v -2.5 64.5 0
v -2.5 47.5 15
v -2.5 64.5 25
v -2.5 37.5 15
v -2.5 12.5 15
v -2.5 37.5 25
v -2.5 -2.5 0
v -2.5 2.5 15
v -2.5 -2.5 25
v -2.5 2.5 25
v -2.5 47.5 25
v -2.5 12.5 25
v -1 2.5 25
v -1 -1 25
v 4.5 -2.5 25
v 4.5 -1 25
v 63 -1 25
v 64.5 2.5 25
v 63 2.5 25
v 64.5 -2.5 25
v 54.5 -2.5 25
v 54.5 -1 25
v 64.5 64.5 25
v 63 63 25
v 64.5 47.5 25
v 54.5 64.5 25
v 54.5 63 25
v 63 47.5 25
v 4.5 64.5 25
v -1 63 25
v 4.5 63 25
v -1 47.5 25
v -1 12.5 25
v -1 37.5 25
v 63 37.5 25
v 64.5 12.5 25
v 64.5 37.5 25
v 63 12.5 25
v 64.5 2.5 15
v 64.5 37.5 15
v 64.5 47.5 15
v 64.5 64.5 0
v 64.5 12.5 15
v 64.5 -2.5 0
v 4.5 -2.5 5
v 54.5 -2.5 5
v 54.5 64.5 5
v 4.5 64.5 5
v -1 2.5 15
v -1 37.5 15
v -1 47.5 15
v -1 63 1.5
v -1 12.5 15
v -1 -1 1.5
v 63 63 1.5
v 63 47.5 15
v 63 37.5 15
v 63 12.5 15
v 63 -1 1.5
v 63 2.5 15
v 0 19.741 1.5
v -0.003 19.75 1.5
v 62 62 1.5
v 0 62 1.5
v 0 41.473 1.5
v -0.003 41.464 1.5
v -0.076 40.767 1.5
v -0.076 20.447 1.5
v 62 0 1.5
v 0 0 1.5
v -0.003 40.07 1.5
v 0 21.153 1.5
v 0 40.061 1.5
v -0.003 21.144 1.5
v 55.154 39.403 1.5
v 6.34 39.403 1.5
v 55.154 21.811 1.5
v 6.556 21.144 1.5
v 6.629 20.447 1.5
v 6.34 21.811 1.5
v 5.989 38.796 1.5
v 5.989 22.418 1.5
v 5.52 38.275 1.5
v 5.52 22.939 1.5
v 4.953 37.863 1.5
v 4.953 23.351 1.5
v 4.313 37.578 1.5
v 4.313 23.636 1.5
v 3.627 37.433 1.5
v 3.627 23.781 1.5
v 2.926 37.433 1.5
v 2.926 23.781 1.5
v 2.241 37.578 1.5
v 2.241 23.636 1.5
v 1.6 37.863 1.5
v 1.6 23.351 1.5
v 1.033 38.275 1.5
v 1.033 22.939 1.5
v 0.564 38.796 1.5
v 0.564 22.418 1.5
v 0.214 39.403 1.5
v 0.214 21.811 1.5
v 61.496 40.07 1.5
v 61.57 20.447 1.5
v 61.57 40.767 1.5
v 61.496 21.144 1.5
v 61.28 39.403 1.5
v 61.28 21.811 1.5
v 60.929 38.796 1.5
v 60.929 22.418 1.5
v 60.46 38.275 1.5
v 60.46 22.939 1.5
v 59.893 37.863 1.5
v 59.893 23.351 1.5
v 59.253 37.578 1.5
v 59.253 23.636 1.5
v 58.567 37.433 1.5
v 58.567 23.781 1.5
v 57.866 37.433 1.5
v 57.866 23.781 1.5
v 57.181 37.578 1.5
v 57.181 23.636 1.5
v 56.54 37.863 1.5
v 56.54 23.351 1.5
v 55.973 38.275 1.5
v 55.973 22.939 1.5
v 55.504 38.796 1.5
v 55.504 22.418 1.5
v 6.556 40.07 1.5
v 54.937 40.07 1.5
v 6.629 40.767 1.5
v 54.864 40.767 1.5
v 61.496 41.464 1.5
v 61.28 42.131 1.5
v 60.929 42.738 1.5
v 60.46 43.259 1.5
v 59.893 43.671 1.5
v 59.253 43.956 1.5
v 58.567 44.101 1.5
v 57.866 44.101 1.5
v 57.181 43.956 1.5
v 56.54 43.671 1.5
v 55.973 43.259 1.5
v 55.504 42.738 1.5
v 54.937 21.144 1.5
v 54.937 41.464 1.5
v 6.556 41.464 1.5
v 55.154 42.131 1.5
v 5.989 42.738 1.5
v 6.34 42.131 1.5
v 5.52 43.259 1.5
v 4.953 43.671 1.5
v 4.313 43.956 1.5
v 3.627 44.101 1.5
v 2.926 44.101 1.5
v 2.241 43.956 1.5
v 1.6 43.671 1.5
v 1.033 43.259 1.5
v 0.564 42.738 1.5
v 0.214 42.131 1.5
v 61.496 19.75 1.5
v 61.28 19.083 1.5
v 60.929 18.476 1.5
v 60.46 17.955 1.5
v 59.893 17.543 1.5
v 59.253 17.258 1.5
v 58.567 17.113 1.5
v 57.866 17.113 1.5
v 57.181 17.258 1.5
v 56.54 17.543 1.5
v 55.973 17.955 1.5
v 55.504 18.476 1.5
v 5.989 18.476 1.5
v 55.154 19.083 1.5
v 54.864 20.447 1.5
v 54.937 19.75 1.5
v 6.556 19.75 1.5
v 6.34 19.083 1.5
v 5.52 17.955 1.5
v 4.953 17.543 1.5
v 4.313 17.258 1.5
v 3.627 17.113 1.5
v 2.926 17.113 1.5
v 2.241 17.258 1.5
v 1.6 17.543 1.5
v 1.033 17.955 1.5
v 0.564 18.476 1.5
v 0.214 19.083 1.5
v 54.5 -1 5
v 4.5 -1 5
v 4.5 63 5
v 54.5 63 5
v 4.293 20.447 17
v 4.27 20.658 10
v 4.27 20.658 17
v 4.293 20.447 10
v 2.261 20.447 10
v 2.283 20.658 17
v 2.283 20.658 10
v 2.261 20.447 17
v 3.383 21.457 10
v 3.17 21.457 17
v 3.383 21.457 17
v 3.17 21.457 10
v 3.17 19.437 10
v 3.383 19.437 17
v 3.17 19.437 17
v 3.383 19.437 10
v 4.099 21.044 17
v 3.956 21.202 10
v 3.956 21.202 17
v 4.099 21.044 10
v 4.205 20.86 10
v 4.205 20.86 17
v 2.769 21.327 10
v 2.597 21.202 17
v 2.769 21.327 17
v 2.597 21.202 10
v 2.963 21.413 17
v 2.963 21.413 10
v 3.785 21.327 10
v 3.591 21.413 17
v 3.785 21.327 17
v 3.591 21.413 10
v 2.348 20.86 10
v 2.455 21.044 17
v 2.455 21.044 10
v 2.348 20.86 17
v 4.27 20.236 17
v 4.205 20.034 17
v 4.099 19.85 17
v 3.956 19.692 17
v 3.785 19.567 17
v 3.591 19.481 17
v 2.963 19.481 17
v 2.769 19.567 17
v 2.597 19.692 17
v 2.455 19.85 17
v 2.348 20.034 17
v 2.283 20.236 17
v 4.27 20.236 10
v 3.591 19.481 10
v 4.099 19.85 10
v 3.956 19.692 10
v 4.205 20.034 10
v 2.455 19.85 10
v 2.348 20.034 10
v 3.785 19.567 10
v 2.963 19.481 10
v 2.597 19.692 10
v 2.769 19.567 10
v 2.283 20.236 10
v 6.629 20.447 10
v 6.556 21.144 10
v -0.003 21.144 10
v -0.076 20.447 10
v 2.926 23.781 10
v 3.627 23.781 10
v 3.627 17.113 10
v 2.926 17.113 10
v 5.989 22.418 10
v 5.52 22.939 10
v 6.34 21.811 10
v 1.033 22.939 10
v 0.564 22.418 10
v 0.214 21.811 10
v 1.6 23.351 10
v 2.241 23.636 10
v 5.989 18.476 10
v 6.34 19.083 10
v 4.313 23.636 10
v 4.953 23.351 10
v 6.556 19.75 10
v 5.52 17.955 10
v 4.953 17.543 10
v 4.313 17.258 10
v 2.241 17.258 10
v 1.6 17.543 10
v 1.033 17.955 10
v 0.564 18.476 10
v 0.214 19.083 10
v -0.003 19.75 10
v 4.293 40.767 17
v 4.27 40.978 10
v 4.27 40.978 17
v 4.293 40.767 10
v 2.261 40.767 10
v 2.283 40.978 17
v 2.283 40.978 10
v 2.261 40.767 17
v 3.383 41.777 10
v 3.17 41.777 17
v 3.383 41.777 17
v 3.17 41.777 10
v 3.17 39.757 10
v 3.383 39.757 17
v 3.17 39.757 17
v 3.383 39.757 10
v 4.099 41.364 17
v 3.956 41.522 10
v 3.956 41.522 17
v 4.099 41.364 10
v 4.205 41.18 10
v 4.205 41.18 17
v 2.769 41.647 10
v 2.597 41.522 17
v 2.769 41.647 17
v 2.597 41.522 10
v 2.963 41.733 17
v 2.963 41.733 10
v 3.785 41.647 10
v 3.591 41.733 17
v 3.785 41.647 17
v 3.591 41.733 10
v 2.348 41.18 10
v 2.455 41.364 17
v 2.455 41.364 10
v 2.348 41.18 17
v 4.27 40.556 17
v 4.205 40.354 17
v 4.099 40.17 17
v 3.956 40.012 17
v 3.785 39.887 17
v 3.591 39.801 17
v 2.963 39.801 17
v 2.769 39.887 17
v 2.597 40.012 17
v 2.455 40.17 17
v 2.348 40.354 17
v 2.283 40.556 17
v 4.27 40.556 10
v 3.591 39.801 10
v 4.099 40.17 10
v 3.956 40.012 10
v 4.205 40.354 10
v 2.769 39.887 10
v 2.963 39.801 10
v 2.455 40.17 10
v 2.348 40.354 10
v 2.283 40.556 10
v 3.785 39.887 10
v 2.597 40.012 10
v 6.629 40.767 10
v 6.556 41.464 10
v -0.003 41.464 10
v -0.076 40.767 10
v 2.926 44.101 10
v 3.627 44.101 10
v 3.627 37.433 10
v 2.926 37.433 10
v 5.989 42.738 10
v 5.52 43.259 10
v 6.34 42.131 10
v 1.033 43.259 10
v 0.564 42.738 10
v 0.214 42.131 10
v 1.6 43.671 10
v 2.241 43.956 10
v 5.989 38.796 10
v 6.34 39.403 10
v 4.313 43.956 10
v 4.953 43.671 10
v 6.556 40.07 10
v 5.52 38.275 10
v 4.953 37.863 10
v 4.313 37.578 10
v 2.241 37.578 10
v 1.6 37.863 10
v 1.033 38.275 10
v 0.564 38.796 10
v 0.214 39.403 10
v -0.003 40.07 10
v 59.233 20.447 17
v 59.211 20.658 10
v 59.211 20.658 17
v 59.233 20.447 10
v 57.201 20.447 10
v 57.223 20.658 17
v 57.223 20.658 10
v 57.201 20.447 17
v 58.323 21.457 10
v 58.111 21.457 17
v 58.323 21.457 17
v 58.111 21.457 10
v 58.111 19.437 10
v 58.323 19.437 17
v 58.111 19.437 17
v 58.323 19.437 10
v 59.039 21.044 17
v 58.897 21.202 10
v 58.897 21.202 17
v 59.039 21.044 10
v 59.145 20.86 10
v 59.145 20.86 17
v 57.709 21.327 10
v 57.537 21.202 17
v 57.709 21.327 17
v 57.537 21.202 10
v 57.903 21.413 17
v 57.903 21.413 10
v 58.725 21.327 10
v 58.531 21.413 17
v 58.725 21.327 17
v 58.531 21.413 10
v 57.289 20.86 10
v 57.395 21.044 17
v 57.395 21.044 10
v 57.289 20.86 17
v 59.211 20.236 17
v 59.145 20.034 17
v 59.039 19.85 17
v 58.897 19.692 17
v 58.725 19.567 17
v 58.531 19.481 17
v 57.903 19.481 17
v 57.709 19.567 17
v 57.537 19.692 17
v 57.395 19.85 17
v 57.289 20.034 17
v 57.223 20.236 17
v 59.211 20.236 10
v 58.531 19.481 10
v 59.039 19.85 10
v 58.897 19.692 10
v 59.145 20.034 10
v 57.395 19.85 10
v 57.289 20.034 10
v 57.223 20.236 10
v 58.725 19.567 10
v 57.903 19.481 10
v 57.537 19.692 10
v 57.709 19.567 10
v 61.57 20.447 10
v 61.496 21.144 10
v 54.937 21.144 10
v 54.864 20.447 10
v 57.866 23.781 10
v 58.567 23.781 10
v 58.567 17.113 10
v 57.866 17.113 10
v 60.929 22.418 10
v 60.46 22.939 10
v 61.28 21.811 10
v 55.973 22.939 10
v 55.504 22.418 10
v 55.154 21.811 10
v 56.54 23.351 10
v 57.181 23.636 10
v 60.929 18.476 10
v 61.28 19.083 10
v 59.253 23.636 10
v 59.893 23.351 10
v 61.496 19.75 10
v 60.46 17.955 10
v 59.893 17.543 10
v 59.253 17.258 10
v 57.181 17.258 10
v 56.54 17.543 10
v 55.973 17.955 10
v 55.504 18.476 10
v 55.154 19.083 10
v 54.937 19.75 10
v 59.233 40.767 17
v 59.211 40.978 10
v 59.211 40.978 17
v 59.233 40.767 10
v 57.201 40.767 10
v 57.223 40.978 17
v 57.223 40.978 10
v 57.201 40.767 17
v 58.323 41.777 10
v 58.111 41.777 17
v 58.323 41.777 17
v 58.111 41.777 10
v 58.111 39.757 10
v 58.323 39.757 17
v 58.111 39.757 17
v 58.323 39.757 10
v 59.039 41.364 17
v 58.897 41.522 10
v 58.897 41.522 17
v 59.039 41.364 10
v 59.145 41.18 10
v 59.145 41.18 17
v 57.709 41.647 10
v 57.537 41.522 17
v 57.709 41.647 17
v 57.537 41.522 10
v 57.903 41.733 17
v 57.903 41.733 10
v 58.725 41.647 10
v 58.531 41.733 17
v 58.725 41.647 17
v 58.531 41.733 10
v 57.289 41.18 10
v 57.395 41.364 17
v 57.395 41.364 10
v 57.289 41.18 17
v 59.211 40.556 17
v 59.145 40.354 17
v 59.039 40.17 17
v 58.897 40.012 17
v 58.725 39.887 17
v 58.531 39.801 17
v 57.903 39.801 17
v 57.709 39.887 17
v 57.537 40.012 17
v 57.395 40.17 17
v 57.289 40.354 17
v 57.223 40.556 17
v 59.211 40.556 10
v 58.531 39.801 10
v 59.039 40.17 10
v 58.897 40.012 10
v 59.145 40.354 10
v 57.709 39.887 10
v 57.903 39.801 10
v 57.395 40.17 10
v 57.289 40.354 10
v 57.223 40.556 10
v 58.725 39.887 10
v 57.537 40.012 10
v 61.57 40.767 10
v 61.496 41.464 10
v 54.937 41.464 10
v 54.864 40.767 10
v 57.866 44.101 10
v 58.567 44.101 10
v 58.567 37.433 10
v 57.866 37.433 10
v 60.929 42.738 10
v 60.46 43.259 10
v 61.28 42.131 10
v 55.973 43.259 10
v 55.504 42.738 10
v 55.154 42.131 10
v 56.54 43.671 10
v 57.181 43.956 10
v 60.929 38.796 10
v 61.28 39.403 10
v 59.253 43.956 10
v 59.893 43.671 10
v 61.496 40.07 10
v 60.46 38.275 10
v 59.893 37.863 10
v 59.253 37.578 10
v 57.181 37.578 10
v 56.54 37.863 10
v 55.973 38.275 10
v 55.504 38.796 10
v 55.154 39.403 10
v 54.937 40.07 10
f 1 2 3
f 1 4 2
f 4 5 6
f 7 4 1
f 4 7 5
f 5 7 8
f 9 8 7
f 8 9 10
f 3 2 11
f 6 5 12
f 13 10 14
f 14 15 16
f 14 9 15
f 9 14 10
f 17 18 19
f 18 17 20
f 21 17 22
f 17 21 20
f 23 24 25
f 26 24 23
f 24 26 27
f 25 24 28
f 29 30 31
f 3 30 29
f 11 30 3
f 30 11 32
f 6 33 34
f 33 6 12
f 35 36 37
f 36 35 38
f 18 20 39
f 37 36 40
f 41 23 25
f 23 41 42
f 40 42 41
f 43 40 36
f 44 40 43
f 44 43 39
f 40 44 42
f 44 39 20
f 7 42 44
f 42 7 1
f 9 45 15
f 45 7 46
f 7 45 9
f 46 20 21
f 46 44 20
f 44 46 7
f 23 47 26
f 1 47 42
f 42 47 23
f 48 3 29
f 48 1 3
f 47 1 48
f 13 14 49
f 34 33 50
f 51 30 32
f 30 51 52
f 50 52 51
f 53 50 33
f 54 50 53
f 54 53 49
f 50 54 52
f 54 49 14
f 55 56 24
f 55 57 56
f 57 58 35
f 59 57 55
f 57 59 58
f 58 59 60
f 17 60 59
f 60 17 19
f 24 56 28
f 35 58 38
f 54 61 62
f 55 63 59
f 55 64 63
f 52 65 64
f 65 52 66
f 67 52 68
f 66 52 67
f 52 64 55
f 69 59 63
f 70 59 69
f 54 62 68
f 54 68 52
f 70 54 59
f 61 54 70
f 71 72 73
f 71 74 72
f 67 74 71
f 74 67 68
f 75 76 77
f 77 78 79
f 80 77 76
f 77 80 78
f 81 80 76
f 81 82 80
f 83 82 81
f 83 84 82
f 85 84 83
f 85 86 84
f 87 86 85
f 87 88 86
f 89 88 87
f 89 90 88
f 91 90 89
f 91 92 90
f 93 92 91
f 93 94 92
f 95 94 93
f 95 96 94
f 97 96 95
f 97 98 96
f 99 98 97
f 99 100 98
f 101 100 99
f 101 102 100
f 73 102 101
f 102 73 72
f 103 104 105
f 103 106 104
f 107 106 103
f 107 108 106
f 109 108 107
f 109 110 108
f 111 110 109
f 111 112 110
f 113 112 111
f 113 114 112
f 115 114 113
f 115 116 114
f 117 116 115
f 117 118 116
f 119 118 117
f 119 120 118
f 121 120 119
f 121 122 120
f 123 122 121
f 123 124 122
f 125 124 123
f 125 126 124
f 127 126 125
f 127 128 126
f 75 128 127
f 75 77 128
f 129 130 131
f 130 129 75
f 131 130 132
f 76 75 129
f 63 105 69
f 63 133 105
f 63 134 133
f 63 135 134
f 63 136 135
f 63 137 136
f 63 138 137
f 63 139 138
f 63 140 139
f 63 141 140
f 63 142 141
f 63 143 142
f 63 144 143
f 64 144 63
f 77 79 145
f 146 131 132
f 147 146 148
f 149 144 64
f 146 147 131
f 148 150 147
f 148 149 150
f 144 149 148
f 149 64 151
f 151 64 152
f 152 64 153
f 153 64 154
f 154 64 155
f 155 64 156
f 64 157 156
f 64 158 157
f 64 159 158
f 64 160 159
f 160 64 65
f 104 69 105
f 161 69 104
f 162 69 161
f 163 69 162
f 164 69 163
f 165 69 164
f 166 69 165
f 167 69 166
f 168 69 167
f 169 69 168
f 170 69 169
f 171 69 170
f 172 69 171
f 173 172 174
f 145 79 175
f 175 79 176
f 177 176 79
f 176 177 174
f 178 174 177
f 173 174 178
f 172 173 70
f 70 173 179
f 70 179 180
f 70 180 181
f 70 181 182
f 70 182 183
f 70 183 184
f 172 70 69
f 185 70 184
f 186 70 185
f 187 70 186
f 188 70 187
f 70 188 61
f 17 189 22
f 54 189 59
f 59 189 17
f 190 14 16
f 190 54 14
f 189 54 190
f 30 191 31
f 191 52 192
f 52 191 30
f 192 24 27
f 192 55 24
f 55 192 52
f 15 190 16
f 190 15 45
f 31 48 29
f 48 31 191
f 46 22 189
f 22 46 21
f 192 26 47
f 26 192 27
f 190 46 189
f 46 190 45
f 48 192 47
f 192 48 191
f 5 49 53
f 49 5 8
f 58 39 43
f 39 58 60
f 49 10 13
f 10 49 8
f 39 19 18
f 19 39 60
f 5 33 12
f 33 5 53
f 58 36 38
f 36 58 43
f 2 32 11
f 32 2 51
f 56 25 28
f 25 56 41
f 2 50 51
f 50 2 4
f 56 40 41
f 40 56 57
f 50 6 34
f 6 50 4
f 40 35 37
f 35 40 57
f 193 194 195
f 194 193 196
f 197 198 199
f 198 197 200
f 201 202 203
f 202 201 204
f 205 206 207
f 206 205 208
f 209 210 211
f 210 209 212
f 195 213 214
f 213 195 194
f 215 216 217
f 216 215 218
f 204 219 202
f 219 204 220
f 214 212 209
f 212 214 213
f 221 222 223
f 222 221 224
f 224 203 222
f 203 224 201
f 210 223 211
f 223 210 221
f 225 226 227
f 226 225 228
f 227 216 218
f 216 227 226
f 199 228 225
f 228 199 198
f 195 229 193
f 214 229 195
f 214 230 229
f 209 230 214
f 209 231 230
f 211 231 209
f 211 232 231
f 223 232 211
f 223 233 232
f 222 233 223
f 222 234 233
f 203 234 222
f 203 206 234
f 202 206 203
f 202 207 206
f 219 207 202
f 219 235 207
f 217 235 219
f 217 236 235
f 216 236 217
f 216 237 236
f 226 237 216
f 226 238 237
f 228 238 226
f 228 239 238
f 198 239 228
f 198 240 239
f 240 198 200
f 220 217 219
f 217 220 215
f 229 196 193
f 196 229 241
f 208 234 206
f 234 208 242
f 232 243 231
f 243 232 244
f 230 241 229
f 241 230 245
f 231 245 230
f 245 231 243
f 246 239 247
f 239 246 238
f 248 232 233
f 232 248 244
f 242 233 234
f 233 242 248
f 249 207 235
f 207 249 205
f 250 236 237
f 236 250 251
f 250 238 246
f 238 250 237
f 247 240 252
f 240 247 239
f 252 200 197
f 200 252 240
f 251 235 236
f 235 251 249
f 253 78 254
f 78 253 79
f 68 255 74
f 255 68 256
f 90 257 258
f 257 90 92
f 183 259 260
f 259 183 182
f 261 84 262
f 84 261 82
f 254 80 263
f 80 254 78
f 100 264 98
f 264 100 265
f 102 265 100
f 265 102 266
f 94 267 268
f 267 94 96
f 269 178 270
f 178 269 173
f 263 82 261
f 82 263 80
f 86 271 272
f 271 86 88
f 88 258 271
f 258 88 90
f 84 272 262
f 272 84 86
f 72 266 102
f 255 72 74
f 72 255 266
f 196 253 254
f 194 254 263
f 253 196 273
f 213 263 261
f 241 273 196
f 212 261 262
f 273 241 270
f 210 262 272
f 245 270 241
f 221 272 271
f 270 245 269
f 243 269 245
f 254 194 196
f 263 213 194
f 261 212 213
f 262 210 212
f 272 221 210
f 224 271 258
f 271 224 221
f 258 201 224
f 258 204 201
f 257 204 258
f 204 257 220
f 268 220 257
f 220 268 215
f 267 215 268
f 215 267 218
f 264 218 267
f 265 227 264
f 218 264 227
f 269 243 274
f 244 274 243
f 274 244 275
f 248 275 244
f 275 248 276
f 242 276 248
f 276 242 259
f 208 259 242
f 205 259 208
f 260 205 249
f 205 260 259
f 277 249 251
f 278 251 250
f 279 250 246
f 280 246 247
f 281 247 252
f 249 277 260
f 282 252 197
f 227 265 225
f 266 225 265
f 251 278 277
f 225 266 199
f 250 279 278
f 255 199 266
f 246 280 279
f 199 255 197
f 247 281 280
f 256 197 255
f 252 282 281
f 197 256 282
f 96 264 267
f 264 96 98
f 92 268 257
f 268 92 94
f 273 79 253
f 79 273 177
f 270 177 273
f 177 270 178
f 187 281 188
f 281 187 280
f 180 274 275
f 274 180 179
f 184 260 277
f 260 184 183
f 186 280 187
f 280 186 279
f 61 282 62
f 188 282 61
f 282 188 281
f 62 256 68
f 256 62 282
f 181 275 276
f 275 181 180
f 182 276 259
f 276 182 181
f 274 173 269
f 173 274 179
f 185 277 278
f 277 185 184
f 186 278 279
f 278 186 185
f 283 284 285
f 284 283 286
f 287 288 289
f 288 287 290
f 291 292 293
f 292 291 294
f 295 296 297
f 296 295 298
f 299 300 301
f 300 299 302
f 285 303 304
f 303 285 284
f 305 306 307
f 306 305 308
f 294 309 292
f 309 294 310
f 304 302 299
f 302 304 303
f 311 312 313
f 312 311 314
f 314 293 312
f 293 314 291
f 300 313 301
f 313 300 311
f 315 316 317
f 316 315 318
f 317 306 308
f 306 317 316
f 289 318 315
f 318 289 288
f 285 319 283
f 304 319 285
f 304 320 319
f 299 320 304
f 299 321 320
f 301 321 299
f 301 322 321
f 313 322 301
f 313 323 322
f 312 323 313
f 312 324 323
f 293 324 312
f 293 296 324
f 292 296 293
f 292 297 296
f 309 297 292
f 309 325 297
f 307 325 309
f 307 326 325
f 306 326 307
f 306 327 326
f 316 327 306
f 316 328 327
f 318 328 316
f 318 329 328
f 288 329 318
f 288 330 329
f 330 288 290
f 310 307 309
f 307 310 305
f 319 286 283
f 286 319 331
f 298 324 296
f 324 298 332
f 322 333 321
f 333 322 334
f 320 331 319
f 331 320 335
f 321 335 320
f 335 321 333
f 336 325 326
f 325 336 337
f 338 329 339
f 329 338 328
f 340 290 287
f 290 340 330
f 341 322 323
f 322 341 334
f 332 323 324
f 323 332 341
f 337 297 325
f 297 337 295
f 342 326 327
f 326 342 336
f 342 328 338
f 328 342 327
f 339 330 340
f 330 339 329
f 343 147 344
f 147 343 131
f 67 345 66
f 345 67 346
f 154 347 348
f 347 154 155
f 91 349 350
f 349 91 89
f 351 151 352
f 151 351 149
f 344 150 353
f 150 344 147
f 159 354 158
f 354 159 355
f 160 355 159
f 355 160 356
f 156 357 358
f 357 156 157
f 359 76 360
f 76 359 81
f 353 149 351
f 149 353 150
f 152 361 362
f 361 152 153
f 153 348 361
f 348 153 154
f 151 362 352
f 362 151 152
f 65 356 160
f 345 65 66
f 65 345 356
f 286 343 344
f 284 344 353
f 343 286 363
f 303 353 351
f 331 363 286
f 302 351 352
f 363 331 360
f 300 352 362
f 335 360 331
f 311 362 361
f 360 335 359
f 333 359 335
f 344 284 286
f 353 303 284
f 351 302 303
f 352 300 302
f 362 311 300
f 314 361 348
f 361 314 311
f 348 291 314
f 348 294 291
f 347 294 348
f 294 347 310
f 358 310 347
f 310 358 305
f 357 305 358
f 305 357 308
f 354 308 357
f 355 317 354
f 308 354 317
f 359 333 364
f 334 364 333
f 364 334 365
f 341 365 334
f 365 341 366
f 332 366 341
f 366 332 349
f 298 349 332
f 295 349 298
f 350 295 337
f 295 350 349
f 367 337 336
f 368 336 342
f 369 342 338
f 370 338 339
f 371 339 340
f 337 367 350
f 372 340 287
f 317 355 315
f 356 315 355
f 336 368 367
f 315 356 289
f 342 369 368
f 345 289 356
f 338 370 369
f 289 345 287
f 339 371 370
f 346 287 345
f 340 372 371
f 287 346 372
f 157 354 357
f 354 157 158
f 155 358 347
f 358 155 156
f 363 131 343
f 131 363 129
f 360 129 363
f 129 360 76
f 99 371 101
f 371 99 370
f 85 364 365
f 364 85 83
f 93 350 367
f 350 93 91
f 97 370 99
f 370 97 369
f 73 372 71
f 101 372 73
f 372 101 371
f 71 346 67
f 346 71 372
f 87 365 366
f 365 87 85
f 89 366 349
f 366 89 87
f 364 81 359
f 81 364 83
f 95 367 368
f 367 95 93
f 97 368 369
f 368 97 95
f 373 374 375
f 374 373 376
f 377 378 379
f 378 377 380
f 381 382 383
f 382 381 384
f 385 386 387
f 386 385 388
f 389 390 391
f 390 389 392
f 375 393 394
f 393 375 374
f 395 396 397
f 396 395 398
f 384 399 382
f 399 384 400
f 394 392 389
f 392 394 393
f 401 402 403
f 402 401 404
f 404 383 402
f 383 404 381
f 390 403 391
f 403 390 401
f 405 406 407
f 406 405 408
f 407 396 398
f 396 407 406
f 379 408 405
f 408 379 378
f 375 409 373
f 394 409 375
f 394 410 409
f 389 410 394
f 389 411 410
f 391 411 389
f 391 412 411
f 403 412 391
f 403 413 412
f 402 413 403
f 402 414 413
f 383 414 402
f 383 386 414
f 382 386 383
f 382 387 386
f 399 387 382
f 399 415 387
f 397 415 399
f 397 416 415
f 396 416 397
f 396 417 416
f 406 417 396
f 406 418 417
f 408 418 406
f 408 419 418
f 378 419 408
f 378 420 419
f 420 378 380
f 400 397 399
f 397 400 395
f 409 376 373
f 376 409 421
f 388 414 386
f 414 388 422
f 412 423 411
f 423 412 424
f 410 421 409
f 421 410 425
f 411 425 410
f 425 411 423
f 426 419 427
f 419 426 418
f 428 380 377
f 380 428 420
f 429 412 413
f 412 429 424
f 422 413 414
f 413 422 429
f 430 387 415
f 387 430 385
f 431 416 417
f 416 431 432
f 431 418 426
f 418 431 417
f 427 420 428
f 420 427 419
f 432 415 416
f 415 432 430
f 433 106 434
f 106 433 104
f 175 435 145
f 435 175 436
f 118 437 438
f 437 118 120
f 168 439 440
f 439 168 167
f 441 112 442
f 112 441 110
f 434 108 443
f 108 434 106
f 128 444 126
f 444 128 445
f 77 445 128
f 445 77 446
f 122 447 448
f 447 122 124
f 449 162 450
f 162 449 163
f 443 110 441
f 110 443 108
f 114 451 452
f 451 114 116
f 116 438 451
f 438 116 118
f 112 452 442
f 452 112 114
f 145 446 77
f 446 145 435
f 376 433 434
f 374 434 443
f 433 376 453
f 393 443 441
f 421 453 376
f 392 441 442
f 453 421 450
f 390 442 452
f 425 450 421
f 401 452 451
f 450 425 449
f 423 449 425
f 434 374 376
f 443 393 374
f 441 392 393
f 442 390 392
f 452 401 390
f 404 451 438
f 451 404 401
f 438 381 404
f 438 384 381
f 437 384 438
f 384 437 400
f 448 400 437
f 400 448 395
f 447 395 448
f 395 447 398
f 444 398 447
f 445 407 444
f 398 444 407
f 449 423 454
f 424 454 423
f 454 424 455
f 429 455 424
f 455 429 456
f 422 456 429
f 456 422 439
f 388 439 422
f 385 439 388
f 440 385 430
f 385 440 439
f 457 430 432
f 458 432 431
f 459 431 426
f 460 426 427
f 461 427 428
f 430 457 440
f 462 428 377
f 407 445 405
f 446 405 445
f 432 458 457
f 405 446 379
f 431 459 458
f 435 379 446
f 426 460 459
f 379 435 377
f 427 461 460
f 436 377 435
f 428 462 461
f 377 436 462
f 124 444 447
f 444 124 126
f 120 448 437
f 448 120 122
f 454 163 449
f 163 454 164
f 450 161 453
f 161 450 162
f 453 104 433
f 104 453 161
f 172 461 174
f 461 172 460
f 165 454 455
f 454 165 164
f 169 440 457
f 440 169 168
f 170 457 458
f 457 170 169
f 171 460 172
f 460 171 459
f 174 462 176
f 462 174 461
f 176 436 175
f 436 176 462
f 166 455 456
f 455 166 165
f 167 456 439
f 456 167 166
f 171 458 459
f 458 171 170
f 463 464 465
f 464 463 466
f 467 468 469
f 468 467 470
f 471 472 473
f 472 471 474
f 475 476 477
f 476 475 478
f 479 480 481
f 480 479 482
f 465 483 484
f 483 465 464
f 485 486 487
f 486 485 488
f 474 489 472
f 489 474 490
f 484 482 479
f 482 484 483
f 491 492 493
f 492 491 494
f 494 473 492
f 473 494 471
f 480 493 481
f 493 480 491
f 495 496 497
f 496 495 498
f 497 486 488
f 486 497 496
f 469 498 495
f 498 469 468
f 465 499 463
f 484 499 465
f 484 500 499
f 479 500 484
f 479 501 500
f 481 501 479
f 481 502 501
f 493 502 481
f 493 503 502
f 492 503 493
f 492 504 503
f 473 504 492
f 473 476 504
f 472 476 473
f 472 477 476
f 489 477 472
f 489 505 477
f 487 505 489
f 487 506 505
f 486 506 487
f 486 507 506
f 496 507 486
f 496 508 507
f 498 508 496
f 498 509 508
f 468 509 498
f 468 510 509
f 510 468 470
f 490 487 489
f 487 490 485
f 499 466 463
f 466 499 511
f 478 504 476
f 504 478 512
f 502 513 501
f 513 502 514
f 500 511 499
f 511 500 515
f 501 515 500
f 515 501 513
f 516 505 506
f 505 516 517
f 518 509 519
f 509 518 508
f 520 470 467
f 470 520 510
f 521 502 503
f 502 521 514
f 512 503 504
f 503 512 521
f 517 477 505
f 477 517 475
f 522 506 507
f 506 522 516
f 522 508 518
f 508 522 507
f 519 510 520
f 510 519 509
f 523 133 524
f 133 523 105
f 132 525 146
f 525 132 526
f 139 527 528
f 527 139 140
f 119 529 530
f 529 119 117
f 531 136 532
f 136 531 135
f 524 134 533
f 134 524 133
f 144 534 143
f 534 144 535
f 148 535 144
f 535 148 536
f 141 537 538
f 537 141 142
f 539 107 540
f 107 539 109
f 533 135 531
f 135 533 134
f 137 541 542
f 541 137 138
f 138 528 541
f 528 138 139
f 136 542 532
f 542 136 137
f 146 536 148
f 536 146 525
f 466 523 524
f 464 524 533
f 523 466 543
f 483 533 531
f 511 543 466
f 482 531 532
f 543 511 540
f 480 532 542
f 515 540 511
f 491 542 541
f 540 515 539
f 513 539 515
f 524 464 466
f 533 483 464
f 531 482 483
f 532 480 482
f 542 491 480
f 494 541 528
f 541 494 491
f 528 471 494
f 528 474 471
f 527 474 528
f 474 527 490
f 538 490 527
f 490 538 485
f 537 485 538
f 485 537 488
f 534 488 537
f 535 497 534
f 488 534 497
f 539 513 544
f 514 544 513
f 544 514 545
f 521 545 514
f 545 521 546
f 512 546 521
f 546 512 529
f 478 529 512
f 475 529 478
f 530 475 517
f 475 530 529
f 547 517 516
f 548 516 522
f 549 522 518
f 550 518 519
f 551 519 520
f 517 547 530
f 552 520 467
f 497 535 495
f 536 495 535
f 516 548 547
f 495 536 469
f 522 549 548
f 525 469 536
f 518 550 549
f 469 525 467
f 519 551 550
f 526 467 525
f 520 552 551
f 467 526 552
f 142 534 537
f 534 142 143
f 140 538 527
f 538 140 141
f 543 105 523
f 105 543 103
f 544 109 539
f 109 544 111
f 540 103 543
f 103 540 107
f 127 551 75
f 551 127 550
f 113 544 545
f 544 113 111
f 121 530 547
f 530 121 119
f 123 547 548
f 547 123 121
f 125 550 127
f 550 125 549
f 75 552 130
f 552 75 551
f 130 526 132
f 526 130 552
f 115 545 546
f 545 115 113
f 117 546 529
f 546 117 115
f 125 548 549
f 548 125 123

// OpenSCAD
$fn = 30;
thou2mm = 0.0254;
cube([62,62,1.5]);
translate([-2.5,-2.5,0]){
    difference(){
        cube([67,67,25]);
        translate([1.5,1.5,1.5]){
            cube([64,64,23.5]);}
        translate([7,0,5]){
            cube([50,70,20]);}
        translate([0,5,15]){
            cube([70,10,10]);}
        translate([0,40,15]){
            cube([70,10,10]);}
    }
}
// probably radius should be 180
translate([129*thou2mm,805*thou2mm]) {
scale([thou2mm,thou2mm,1])cylinder(h=17, r1=40, r2=40); 
scale([thou2mm,thou2mm,1])cylinder(h=10, r1=132, r2=132); 
}
translate([129*thou2mm,1605*thou2mm]){
  scale([thou2mm,thou2mm,1])cylinder(h=17, r1=40, r2=40); 
scale([thou2mm,thou2mm,1])cylinder(h=10, r1=132, r2=132);  
}
translate([2292*thou2mm,805*thou2mm]){ scale([thou2mm,thou2mm,1])cylinder(h=17, r1=40, r2=40); 
scale([thou2mm,thou2mm,1])cylinder(h=10, r1=132, r2=132);
}
translate([2292*thou2mm,1605*thou2mm]){ 
scale([thou2mm,thou2mm,1])cylinder(h=17, r1=40, r2=40); 
scale([thou2mm,thou2mm,1])cylinder(h=10, r1=132, r2=132);  }
